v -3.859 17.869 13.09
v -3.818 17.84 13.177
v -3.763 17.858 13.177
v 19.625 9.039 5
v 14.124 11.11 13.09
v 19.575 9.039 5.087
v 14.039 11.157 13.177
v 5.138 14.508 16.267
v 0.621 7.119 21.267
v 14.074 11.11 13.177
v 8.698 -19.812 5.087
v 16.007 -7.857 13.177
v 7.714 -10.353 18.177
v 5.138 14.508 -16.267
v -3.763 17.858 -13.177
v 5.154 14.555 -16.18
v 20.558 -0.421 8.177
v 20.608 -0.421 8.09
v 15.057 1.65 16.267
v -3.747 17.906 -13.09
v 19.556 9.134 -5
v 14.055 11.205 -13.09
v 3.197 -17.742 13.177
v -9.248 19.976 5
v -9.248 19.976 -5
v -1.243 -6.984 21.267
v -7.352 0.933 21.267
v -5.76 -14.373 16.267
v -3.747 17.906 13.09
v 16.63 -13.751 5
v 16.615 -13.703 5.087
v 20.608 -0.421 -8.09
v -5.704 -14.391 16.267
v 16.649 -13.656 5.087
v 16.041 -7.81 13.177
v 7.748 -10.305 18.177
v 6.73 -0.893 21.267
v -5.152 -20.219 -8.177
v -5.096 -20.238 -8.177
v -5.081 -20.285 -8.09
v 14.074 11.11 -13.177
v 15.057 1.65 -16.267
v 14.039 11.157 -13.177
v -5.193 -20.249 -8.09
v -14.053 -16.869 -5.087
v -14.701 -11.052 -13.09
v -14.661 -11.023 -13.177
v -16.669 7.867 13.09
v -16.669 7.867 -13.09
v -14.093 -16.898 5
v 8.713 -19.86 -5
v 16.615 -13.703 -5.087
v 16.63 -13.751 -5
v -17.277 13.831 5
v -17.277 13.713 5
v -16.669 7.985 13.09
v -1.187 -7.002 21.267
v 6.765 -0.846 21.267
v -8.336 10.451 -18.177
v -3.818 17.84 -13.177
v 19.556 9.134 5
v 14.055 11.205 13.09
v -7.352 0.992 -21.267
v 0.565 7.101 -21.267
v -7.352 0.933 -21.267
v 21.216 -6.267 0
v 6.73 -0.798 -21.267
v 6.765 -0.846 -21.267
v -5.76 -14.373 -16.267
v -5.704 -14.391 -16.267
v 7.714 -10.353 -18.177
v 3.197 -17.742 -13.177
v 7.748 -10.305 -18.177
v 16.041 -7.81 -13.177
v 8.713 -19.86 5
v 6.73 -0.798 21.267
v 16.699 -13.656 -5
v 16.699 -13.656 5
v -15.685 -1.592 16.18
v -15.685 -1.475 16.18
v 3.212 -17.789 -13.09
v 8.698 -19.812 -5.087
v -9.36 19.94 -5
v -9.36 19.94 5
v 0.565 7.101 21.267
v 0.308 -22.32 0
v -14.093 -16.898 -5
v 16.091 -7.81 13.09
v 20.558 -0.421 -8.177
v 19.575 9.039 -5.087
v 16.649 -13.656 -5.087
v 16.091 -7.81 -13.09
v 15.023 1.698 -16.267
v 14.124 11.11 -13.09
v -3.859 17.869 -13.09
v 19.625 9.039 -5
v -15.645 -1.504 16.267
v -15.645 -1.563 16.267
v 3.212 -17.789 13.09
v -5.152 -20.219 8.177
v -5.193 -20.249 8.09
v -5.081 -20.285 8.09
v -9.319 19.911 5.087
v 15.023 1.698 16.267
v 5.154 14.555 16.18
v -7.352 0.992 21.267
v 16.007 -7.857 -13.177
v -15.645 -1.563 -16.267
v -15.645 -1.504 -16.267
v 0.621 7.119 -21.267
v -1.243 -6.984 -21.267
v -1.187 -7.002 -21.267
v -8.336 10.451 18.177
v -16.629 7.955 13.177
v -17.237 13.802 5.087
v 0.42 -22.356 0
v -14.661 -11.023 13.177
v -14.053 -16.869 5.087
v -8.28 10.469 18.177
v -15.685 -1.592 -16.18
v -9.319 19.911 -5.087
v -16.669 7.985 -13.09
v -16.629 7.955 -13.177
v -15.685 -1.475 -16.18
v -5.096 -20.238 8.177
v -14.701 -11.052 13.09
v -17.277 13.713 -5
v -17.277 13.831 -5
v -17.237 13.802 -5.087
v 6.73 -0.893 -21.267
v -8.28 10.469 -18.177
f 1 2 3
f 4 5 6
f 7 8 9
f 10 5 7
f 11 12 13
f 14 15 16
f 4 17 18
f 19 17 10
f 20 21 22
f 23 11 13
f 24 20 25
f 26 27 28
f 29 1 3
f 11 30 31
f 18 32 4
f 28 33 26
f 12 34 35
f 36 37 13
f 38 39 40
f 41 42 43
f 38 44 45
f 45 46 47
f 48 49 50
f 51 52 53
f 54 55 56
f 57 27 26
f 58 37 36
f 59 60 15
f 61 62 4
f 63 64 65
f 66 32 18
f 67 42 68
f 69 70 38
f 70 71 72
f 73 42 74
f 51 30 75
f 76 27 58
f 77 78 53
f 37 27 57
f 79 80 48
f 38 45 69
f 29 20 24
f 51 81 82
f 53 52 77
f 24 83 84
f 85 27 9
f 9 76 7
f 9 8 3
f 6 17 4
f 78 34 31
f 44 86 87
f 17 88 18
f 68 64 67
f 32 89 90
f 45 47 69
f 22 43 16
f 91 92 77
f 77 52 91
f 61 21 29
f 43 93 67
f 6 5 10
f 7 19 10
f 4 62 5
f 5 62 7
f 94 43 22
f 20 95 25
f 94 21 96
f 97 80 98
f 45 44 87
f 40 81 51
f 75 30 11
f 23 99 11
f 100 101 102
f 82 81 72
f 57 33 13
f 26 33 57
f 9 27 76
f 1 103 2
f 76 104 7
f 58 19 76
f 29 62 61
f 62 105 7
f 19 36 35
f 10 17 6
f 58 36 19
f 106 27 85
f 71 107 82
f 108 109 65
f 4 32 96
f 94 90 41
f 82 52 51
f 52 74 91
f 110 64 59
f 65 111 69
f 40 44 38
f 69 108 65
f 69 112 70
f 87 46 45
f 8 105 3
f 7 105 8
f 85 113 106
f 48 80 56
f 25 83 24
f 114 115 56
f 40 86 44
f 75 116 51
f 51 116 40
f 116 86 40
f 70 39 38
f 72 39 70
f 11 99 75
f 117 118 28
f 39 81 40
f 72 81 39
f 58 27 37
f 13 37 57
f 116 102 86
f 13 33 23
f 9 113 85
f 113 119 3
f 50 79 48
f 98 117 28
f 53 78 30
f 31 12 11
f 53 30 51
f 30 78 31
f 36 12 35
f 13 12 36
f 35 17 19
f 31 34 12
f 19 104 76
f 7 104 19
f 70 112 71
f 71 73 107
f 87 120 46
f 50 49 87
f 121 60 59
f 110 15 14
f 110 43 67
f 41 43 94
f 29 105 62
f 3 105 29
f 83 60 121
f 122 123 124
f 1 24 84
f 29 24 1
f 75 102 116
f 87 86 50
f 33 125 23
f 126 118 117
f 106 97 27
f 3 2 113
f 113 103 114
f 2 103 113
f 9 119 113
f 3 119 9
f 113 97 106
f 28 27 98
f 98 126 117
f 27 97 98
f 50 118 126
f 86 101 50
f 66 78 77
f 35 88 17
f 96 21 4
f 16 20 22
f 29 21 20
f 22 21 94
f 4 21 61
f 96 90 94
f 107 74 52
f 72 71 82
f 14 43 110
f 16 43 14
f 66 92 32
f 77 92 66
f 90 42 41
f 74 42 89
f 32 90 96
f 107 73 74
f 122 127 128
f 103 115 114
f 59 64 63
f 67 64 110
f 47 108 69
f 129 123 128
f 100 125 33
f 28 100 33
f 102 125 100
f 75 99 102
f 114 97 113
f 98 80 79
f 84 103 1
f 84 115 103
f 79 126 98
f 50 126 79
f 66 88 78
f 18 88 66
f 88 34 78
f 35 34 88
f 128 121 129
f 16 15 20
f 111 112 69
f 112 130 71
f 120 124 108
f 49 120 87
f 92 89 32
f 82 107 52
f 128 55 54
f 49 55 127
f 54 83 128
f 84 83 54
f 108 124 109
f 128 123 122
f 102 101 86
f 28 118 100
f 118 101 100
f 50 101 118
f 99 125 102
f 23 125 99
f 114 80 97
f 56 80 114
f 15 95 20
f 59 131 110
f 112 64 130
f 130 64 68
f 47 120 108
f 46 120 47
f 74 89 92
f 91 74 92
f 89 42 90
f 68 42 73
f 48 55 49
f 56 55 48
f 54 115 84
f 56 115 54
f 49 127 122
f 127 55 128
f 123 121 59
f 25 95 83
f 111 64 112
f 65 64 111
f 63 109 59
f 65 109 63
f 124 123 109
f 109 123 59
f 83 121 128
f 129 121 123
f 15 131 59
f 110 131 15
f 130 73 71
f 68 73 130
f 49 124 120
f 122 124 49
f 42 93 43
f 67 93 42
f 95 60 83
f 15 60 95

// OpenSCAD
// Auto-generated OpenSCAD file

    inner_points = 10*[[-0.9279033340044873, 1.9881287339373244, 0.5], [1.6599232743581653, -1.3655894049421804, 0.5000000000000002], [-1.719608792154131, 1.3772257403810124, 0.49999999999999983], [0.8682178162085216, -1.9764923984984926, 0.5], [-0.9279033340044872, 1.9881287339373246, -0.5], [1.6599232743581653, -1.3655894049421804, -0.49999999999999983], [-1.719608792154131, 1.3772257403810124, -0.5000000000000002], [0.8682178162085217, -1.9764923984984923, -0.5], [0.06055847339868262, 0.7071223935723936, 2.118033988749895], [0.6714614669549944, -0.08458306457724996, 2.118033988749895], [-0.7311469847509608, 0.0962194000160817, 2.118033988749895], [-0.1202439911946491, -0.6954860581335618, 2.118033988749895], [0.060558473398683345, 0.7071223935723938, -2.118033988749895], [0.6714614669549952, -0.08458306457724962, -2.118033988749895], [-0.7311469847509601, 0.09621940001608204, -2.118033988749895], [-0.12024399119464838, -0.6954860581335616, -2.118033988749895], [1.9524678073199255, 0.9038787428259204, 0.5000000000000004], [-1.4012503315595792, -1.6839478655367321, 0.49999999999999967], [1.9524678073199255, 0.9038787428259204, -0.4999999999999996], [-1.4012503315595792, -1.6839478655367321, -0.5000000000000003], [2.1116470376172014, -0.6267080601329519, 3.1851338429106984e-16], [0.038935239102626924, -2.226072861092434, -1.4591074810930197e-16], [-0.8295251593777242, 1.042174066976703, 1.8090169943749475], [0.7698396415817579, -1.0305377315378712, 1.8090169943749475], [-0.8295251593777235, 1.0421740669767032, -1.8090169943749475], [0.7698396415817585, -1.030537731537871, -1.8090169943749475], [1.402365869434126, 1.1109520649773128, 1.3090169943749477], [-1.462051387230092, -1.099315729538481, 1.3090169943749472], [1.4023658694341263, 1.110952064977313, -1.3090169943749472], [-1.4620513872300915, -1.0993157295384808, -1.3090169943749477], [-0.3778013961186881, 1.7810554117859319, 1.3090169943749475], [1.5991222186876526, -0.7809572689439295, 1.3090169943749477], [-1.6588077364836187, 0.7925936043827613, 1.3090169943749472], [0.318115878322722, -1.7694190763471, 1.3090169943749475], [-0.37780139611868774, 1.781055411785932, -1.3090169943749475], [1.599122218687653, -0.7809572689439293, -1.3090169943749472], [-1.6588077364836182, 0.7925936043827615, -1.3090169943749477], [0.31811587832272237, -1.7694190763470998, -1.3090169943749475], [0.512282236657719, 1.4460037383816222, 1.6180339887498951], [1.5007440440608895, 0.1649973980166917, 1.6180339887498951], [-1.5604295618568556, -0.15336106257785984, 1.6180339887498947], [-0.571967754453685, -1.4343674029427904, 1.6180339887498947], [0.5122822366577193, 1.4460037383816224, -1.6180339887498947], [1.50074404406089, 0.16499739801669192, -1.6180339887498947], [-1.560429561856855, -0.1533610625778596, -1.6180339887498951], [-0.5719677544536846, -1.4343674029427902, -1.6180339887498951], [2.0508459819466887, -0.04207592413470093, 0.8090169943749478], [-0.5111666987831726, -2.0189995389410416, 0.8090169943749472], [2.0508459819466887, -0.04207592413470082, -0.8090169943749471], [-0.5111666987831723, -2.018999538941041, -0.8090169943749477]];

    outer_points = 10*[[-0.799273279028224, 1.9936569571401734, 0.6103786858810235], [1.7232737678332082, -1.3929503128430878, 0.2758349588940299], [-1.5918035039950686, 1.3929503128430878, 0.7154851557643633], [0.9307435428663637, -1.9936569571401734, 0.38094142877736964], [-0.9307435428663637, 1.9936569571401734, -0.38094142877736964], [1.5918035039950686, -1.3929503128430878, -0.7154851557643633], [-1.7232737678332082, 1.3929503128430878, -0.2758349588940299], [0.799273279028224, -1.9936569571401734, -0.6103786858810235], [0.37697731005219565, 0.7000880865540592, 2.0865839921437805], [0.9724698895528412, -0.09938144225697354, 2.0076089311287193], [-0.41555291491464885, 0.09938144225697354, 2.19169046202712], [0.1799396645859967, -0.7000880865540592, 2.112715401012059], [-0.1799396645859967, 0.7000880865540592, -2.112715401012059], [0.41555291491464885, -0.09938144225697354, -2.19169046202712], [-0.9724698895528412, 0.09938144225697354, -2.0076089311287193], [-0.37697731005219565, -0.7000880865540592, -2.0865839921437805], [2.04208737526077, 0.8725823254836041, 0.23355345117123516], [-1.3151245319219846, -1.672051854294637, 0.6787916024720966], [1.9106171114226302, 0.8725823254836041, -0.757766663487158], [-1.4465947957601242, -1.672051854294637, -0.31252851218629657], [2.114691729378242, -0.6599187580852582, -0.28045338280409476], [0.03982066330344263, -2.2325891701229215, -0.005281072211994187], [-0.5416779650523665, 1.0465191996985734, 1.8966946312832687], [1.0173418481286722, -1.0465191996985734, 1.689935237282241], [-1.0173418481286722, 1.0465191996985734, -1.689935237282241], [0.5416779650523665, -1.0465191996985734, -1.8966946312832687], [1.605797455139905, 1.0866885281673746, 1.1075154867158379], [-1.2616038359017392, -1.0866885281673746, 1.4877942671912783], [1.2616038359017392, 1.0866885281673746, -1.4877942671912783], [-1.605797455139905, -1.0866885281673746, -1.1075154867158379], [-0.1502600035073329, 1.7795507544564033, 1.3404062895851439], [1.7767944638534539, -0.8075869867158254, 1.0848376236132116], [-1.432600844615288, 0.8075869867158254, 1.5104721302939046], [0.49445362274549887, -1.7795507544564033, 1.2549034643219723], [-0.49445362274549887, 1.7795507544564033, -1.2549034643219723], [1.432600844615288, -0.8075869867158254, -1.5104721302939046], [-1.7767944638534539, 0.8075869867158254, -1.0848376236132116], [0.1502600035073329, -1.7795507544564033, -1.3404062895851439], [0.7683952715972292, 1.433119641311889, 1.530295650445656], [1.7319225052776228, 0.1395507707257745, 1.4025113174596897], [-1.3064757944775702, -0.1395507707257745, 1.8054679610377566], [-0.3429485607971766, -1.433119641311889, 1.6776836280517904], [0.3429485607971766, 1.433119641311889, -1.6776836280517904], [1.3064757944775702, 0.1395507707257745, -1.8054679610377566], [-1.7319225052776228, -0.1395507707257745, -1.4025113174596897], [-0.7683952715972292, -1.433119641311889, -1.530295650445656], [2.1682124253984876, -0.07455543195799563, 0.528549281915087], [-0.3964692568174225, -2.018482967439151, 0.8686809633326087], [1.9554890699984613, -0.07455543195799563, -1.0754403573336362], [-0.6091926122174488, -2.018482967439151, -0.7353086759161145]];

    // Convex hull for inner set (I)
    module inner_hull() {
        hull() {
            for (p = inner_points) {
                translate(p) sphere(r=0.1);
            }
        }
    }

    // Convex hull for outer set (O) minus inner hull (O \ I)
    module outer_minus_inner() {
        difference() {
            hull() {
                for (p = outer_points) {
                    translate(p) sphere(r=0.1);
                }
            }
            inner_hull(); // Subtract inner hull
        }
    }

    // Convex hull for outer set (O) minus all translated inner hulls
    module outer_minus_AllTranslationInner() {
        difference() {
            hull() {
                for (p = outer_points) {
                    translate(p) sphere(r=0.1);
                }
            }
            hull() {
                translate([0,0,50]) inner_hull();
                translate([0,0,-50]) inner_hull();
            }; // Subtract translated inner hulls
        }
    }

    // Difference between outer_minus_inner and outer_minus_AllTranslationInner
    module outer_minus_inner_diff() {
        difference() {
            // Outer minus inner
            difference() {
                hull() {
                    for (p = outer_points) {
                        translate(p) sphere(r=0.1);
                    }
                }
                inner_hull();
            }

            // Subtract Outer minus AllTranslationInner
            difference() {
                hull() {
                    for (p = outer_points) {
                        translate(p) sphere(r=0.1);
                    }
                }
                hull() {
                    translate([0,0,50]) inner_hull();
                    translate([0,0,-50]) inner_hull();
                };
            }
        }
    }

    // Rendering all with colors applied
    color([1, 0, 0, 0.5]) inner_hull(); // Transparent red
    
